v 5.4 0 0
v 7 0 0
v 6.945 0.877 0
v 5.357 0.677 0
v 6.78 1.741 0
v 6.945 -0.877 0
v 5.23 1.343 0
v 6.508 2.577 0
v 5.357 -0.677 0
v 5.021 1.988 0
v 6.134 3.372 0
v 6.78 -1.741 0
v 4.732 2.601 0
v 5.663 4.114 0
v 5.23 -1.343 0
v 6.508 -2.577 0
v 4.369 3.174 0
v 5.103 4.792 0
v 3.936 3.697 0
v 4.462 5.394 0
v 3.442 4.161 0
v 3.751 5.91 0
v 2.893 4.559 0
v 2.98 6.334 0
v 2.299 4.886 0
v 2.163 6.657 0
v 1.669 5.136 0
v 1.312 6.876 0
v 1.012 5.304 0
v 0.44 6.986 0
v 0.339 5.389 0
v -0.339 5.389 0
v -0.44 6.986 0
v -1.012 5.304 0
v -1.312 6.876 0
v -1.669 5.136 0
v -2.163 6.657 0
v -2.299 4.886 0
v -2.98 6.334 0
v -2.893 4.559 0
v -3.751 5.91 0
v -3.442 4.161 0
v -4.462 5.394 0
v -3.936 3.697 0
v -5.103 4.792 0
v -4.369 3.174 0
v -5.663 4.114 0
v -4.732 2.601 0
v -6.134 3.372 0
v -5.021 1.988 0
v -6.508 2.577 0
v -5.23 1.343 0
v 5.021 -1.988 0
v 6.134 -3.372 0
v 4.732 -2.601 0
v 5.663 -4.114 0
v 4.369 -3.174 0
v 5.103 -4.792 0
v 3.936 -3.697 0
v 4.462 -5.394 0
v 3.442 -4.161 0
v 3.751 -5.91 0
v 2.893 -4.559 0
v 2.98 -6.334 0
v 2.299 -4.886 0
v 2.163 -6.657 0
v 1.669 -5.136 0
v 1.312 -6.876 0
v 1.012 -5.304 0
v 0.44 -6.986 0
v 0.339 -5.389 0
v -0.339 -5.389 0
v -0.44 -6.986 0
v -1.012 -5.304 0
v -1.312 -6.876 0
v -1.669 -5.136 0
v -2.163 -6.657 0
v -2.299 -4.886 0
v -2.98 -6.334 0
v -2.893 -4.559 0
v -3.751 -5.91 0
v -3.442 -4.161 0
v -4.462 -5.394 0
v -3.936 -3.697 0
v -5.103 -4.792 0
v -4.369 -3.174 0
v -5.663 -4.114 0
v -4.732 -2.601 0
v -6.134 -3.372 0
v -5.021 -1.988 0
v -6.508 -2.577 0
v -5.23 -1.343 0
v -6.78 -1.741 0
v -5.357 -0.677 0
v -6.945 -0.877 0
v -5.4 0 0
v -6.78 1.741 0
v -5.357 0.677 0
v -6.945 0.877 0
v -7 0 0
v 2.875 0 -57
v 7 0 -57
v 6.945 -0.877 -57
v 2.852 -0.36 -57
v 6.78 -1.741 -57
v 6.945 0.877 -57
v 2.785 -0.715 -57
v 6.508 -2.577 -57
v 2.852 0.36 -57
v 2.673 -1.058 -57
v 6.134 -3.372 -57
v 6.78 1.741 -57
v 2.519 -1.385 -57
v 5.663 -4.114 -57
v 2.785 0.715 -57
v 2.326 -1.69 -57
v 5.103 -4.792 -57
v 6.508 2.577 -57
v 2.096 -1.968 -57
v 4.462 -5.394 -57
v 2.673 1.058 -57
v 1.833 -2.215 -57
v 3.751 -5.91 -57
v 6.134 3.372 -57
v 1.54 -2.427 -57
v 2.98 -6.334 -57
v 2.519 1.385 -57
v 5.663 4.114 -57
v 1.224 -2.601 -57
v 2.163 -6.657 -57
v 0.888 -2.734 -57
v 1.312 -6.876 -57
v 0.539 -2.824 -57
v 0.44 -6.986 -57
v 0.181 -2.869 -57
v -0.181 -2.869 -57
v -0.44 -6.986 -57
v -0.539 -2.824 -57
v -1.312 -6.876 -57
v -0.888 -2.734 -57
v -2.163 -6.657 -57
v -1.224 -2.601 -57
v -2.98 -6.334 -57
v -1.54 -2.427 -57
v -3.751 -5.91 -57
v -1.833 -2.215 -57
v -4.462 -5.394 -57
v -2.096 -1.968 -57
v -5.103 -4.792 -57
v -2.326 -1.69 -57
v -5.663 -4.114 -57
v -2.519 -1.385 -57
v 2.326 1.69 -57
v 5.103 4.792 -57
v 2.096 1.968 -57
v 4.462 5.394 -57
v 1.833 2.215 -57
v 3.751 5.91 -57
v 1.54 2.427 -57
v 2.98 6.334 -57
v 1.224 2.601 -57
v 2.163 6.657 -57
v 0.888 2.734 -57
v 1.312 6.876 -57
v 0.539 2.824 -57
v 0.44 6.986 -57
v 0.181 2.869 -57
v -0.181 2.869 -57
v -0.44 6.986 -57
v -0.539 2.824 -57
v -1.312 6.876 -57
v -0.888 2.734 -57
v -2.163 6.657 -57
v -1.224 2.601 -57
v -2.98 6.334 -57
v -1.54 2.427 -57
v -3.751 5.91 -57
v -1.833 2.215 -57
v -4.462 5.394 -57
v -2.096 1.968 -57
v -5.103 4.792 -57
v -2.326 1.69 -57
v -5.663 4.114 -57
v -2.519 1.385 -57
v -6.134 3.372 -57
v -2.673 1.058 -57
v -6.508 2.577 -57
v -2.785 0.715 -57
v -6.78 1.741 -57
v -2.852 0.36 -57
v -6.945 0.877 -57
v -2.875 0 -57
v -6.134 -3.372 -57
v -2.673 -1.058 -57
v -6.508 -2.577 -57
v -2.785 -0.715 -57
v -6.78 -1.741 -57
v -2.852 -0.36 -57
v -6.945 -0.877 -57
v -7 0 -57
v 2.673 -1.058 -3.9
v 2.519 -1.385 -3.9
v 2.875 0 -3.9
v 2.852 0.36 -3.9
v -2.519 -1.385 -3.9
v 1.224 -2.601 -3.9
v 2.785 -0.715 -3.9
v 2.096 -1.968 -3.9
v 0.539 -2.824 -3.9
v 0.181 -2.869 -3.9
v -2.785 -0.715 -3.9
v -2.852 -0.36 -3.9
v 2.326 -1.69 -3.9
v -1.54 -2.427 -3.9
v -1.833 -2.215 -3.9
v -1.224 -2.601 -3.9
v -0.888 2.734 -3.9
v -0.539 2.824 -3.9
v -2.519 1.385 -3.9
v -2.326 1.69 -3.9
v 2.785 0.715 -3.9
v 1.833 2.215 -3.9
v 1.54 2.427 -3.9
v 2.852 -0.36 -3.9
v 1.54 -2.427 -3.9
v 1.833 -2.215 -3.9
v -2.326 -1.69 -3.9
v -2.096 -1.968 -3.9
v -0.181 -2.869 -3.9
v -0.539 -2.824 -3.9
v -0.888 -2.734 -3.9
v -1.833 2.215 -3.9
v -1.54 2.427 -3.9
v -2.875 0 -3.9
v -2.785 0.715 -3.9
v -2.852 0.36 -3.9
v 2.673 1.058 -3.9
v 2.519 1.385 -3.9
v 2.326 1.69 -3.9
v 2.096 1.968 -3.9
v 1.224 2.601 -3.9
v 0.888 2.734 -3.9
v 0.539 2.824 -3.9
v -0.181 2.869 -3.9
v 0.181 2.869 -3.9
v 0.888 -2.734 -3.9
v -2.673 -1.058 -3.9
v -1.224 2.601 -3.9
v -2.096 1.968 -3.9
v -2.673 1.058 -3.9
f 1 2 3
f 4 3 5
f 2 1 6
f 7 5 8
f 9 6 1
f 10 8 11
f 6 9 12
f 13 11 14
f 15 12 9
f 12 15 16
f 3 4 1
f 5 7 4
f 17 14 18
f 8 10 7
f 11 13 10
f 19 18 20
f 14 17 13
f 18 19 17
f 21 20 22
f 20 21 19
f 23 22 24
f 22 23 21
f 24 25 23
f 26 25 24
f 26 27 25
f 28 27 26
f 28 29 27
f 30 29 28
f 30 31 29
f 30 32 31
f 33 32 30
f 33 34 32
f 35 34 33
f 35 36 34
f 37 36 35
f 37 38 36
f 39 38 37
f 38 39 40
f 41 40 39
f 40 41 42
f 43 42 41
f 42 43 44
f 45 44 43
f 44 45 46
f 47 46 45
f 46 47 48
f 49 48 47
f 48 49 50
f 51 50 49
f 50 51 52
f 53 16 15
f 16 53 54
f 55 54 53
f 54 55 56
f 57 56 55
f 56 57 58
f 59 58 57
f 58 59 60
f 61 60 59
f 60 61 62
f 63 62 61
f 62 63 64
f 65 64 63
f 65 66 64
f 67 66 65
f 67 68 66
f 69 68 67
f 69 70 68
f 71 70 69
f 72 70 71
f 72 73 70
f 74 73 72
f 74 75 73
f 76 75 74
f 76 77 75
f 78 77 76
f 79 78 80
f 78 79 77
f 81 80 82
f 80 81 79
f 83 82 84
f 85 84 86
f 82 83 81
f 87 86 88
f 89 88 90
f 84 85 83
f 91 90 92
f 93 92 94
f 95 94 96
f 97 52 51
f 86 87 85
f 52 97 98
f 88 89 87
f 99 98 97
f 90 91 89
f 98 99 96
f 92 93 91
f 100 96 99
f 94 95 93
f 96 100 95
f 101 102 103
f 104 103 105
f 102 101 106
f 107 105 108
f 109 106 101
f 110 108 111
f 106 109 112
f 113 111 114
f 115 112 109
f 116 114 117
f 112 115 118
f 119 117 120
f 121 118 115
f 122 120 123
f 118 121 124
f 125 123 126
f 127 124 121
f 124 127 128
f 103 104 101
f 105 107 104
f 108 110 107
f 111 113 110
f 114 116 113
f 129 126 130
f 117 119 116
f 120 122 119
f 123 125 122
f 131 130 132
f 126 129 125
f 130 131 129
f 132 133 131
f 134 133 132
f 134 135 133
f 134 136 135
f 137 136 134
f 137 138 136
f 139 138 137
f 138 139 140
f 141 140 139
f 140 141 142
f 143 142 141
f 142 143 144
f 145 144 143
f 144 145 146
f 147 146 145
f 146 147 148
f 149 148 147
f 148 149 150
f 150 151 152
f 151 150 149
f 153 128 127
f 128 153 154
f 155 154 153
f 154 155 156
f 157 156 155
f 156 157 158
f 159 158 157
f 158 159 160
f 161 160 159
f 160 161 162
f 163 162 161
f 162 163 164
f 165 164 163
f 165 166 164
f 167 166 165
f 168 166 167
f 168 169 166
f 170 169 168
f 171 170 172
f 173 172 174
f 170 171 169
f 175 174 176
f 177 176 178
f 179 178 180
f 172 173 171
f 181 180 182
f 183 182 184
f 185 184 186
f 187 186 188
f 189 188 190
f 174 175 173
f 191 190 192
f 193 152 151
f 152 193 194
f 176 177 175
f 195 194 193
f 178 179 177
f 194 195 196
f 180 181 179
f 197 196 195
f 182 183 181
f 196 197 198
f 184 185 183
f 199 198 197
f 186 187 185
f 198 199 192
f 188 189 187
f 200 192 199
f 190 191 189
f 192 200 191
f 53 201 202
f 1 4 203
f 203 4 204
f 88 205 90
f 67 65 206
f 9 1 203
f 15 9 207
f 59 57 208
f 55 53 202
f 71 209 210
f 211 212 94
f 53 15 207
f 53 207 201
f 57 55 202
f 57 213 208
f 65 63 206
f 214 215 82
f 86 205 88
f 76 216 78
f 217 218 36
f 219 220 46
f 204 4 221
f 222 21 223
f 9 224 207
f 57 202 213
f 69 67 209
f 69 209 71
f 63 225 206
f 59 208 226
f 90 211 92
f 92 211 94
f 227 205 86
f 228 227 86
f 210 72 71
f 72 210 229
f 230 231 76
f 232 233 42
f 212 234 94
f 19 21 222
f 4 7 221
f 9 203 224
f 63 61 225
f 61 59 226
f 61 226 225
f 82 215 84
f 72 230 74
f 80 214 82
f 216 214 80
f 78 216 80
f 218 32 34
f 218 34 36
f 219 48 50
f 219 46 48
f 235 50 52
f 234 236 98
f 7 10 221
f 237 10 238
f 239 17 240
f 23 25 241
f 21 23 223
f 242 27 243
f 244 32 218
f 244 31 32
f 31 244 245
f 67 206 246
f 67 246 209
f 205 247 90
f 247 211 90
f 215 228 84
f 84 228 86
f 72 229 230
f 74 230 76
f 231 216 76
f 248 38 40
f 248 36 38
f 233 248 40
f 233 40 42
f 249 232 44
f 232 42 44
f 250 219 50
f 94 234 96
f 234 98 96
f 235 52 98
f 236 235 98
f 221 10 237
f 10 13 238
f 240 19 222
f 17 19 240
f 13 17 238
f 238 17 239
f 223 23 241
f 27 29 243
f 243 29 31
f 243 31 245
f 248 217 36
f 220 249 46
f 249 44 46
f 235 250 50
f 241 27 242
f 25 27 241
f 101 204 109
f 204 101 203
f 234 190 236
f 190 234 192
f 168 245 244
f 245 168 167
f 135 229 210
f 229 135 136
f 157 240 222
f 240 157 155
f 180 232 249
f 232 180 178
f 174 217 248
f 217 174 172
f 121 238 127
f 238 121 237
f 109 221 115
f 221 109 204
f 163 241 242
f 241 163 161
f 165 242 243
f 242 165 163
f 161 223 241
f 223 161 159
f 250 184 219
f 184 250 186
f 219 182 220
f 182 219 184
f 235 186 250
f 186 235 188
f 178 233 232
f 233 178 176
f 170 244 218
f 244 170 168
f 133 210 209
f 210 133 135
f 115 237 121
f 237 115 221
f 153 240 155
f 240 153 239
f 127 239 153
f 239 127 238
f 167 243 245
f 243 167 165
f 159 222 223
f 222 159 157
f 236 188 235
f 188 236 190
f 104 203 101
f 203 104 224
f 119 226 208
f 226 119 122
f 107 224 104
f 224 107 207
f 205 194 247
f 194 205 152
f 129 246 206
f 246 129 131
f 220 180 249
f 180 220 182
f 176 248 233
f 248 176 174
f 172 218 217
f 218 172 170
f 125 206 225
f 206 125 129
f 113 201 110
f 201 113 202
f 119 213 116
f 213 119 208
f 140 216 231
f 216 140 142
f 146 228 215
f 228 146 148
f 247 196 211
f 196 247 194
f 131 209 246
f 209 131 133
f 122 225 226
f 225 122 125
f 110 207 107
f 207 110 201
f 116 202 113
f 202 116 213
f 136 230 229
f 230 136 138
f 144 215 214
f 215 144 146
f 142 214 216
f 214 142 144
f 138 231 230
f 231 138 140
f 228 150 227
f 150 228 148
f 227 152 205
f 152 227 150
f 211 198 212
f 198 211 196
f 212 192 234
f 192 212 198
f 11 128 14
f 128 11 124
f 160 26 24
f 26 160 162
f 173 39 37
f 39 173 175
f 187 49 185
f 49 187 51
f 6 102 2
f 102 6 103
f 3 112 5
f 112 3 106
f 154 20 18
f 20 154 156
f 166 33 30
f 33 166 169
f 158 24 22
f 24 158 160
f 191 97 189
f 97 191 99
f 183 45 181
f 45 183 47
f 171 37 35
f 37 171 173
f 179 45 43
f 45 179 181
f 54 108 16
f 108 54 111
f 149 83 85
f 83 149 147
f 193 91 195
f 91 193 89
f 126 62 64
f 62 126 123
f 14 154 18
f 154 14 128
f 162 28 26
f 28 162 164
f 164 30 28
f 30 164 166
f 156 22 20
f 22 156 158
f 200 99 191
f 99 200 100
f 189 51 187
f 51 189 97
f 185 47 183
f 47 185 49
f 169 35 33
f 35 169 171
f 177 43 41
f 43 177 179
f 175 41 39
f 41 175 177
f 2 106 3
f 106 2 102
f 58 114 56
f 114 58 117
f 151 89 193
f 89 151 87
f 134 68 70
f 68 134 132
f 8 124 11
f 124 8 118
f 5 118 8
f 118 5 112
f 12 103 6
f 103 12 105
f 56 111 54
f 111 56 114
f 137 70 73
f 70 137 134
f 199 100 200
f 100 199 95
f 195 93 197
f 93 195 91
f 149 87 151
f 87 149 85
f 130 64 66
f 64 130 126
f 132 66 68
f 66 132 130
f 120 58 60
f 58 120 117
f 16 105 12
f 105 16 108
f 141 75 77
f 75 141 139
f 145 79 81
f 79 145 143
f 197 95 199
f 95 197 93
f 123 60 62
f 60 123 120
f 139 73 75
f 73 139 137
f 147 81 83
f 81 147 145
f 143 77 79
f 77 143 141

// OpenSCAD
$fn = 50;


difference() {
	union() {
		translate(v = [0, 0, -57.0000000000]) {
			cylinder(h = 57, r = 7.0000000000);
		}
	}
	union() {
		translate(v = [0, 0, 0]) {
			rotate(a = [0, 0, 0]) {
				difference() {
					union() {
						#translate(v = [0, 0, -57.0000000000]) {
							cylinder(h = 57, r = 2.6000000000);
						}
						#translate(v = [0, 0, -3.9000000000]) {
							cylinder(h = 3.9000000000, r = 7.0000000000, r1 = 2.8750000000, r2 = 5.4000000000);
						}
						#translate(v = [0, 0, -57.0000000000]) {
							cylinder(h = 57, r = 2.8750000000);
						}
						#translate(v = [0, 0, -57.0000000000]) {
							cylinder(h = 57, r = 2.6000000000);
						}
					}
					union();
				}
			}
		}
	}
}
